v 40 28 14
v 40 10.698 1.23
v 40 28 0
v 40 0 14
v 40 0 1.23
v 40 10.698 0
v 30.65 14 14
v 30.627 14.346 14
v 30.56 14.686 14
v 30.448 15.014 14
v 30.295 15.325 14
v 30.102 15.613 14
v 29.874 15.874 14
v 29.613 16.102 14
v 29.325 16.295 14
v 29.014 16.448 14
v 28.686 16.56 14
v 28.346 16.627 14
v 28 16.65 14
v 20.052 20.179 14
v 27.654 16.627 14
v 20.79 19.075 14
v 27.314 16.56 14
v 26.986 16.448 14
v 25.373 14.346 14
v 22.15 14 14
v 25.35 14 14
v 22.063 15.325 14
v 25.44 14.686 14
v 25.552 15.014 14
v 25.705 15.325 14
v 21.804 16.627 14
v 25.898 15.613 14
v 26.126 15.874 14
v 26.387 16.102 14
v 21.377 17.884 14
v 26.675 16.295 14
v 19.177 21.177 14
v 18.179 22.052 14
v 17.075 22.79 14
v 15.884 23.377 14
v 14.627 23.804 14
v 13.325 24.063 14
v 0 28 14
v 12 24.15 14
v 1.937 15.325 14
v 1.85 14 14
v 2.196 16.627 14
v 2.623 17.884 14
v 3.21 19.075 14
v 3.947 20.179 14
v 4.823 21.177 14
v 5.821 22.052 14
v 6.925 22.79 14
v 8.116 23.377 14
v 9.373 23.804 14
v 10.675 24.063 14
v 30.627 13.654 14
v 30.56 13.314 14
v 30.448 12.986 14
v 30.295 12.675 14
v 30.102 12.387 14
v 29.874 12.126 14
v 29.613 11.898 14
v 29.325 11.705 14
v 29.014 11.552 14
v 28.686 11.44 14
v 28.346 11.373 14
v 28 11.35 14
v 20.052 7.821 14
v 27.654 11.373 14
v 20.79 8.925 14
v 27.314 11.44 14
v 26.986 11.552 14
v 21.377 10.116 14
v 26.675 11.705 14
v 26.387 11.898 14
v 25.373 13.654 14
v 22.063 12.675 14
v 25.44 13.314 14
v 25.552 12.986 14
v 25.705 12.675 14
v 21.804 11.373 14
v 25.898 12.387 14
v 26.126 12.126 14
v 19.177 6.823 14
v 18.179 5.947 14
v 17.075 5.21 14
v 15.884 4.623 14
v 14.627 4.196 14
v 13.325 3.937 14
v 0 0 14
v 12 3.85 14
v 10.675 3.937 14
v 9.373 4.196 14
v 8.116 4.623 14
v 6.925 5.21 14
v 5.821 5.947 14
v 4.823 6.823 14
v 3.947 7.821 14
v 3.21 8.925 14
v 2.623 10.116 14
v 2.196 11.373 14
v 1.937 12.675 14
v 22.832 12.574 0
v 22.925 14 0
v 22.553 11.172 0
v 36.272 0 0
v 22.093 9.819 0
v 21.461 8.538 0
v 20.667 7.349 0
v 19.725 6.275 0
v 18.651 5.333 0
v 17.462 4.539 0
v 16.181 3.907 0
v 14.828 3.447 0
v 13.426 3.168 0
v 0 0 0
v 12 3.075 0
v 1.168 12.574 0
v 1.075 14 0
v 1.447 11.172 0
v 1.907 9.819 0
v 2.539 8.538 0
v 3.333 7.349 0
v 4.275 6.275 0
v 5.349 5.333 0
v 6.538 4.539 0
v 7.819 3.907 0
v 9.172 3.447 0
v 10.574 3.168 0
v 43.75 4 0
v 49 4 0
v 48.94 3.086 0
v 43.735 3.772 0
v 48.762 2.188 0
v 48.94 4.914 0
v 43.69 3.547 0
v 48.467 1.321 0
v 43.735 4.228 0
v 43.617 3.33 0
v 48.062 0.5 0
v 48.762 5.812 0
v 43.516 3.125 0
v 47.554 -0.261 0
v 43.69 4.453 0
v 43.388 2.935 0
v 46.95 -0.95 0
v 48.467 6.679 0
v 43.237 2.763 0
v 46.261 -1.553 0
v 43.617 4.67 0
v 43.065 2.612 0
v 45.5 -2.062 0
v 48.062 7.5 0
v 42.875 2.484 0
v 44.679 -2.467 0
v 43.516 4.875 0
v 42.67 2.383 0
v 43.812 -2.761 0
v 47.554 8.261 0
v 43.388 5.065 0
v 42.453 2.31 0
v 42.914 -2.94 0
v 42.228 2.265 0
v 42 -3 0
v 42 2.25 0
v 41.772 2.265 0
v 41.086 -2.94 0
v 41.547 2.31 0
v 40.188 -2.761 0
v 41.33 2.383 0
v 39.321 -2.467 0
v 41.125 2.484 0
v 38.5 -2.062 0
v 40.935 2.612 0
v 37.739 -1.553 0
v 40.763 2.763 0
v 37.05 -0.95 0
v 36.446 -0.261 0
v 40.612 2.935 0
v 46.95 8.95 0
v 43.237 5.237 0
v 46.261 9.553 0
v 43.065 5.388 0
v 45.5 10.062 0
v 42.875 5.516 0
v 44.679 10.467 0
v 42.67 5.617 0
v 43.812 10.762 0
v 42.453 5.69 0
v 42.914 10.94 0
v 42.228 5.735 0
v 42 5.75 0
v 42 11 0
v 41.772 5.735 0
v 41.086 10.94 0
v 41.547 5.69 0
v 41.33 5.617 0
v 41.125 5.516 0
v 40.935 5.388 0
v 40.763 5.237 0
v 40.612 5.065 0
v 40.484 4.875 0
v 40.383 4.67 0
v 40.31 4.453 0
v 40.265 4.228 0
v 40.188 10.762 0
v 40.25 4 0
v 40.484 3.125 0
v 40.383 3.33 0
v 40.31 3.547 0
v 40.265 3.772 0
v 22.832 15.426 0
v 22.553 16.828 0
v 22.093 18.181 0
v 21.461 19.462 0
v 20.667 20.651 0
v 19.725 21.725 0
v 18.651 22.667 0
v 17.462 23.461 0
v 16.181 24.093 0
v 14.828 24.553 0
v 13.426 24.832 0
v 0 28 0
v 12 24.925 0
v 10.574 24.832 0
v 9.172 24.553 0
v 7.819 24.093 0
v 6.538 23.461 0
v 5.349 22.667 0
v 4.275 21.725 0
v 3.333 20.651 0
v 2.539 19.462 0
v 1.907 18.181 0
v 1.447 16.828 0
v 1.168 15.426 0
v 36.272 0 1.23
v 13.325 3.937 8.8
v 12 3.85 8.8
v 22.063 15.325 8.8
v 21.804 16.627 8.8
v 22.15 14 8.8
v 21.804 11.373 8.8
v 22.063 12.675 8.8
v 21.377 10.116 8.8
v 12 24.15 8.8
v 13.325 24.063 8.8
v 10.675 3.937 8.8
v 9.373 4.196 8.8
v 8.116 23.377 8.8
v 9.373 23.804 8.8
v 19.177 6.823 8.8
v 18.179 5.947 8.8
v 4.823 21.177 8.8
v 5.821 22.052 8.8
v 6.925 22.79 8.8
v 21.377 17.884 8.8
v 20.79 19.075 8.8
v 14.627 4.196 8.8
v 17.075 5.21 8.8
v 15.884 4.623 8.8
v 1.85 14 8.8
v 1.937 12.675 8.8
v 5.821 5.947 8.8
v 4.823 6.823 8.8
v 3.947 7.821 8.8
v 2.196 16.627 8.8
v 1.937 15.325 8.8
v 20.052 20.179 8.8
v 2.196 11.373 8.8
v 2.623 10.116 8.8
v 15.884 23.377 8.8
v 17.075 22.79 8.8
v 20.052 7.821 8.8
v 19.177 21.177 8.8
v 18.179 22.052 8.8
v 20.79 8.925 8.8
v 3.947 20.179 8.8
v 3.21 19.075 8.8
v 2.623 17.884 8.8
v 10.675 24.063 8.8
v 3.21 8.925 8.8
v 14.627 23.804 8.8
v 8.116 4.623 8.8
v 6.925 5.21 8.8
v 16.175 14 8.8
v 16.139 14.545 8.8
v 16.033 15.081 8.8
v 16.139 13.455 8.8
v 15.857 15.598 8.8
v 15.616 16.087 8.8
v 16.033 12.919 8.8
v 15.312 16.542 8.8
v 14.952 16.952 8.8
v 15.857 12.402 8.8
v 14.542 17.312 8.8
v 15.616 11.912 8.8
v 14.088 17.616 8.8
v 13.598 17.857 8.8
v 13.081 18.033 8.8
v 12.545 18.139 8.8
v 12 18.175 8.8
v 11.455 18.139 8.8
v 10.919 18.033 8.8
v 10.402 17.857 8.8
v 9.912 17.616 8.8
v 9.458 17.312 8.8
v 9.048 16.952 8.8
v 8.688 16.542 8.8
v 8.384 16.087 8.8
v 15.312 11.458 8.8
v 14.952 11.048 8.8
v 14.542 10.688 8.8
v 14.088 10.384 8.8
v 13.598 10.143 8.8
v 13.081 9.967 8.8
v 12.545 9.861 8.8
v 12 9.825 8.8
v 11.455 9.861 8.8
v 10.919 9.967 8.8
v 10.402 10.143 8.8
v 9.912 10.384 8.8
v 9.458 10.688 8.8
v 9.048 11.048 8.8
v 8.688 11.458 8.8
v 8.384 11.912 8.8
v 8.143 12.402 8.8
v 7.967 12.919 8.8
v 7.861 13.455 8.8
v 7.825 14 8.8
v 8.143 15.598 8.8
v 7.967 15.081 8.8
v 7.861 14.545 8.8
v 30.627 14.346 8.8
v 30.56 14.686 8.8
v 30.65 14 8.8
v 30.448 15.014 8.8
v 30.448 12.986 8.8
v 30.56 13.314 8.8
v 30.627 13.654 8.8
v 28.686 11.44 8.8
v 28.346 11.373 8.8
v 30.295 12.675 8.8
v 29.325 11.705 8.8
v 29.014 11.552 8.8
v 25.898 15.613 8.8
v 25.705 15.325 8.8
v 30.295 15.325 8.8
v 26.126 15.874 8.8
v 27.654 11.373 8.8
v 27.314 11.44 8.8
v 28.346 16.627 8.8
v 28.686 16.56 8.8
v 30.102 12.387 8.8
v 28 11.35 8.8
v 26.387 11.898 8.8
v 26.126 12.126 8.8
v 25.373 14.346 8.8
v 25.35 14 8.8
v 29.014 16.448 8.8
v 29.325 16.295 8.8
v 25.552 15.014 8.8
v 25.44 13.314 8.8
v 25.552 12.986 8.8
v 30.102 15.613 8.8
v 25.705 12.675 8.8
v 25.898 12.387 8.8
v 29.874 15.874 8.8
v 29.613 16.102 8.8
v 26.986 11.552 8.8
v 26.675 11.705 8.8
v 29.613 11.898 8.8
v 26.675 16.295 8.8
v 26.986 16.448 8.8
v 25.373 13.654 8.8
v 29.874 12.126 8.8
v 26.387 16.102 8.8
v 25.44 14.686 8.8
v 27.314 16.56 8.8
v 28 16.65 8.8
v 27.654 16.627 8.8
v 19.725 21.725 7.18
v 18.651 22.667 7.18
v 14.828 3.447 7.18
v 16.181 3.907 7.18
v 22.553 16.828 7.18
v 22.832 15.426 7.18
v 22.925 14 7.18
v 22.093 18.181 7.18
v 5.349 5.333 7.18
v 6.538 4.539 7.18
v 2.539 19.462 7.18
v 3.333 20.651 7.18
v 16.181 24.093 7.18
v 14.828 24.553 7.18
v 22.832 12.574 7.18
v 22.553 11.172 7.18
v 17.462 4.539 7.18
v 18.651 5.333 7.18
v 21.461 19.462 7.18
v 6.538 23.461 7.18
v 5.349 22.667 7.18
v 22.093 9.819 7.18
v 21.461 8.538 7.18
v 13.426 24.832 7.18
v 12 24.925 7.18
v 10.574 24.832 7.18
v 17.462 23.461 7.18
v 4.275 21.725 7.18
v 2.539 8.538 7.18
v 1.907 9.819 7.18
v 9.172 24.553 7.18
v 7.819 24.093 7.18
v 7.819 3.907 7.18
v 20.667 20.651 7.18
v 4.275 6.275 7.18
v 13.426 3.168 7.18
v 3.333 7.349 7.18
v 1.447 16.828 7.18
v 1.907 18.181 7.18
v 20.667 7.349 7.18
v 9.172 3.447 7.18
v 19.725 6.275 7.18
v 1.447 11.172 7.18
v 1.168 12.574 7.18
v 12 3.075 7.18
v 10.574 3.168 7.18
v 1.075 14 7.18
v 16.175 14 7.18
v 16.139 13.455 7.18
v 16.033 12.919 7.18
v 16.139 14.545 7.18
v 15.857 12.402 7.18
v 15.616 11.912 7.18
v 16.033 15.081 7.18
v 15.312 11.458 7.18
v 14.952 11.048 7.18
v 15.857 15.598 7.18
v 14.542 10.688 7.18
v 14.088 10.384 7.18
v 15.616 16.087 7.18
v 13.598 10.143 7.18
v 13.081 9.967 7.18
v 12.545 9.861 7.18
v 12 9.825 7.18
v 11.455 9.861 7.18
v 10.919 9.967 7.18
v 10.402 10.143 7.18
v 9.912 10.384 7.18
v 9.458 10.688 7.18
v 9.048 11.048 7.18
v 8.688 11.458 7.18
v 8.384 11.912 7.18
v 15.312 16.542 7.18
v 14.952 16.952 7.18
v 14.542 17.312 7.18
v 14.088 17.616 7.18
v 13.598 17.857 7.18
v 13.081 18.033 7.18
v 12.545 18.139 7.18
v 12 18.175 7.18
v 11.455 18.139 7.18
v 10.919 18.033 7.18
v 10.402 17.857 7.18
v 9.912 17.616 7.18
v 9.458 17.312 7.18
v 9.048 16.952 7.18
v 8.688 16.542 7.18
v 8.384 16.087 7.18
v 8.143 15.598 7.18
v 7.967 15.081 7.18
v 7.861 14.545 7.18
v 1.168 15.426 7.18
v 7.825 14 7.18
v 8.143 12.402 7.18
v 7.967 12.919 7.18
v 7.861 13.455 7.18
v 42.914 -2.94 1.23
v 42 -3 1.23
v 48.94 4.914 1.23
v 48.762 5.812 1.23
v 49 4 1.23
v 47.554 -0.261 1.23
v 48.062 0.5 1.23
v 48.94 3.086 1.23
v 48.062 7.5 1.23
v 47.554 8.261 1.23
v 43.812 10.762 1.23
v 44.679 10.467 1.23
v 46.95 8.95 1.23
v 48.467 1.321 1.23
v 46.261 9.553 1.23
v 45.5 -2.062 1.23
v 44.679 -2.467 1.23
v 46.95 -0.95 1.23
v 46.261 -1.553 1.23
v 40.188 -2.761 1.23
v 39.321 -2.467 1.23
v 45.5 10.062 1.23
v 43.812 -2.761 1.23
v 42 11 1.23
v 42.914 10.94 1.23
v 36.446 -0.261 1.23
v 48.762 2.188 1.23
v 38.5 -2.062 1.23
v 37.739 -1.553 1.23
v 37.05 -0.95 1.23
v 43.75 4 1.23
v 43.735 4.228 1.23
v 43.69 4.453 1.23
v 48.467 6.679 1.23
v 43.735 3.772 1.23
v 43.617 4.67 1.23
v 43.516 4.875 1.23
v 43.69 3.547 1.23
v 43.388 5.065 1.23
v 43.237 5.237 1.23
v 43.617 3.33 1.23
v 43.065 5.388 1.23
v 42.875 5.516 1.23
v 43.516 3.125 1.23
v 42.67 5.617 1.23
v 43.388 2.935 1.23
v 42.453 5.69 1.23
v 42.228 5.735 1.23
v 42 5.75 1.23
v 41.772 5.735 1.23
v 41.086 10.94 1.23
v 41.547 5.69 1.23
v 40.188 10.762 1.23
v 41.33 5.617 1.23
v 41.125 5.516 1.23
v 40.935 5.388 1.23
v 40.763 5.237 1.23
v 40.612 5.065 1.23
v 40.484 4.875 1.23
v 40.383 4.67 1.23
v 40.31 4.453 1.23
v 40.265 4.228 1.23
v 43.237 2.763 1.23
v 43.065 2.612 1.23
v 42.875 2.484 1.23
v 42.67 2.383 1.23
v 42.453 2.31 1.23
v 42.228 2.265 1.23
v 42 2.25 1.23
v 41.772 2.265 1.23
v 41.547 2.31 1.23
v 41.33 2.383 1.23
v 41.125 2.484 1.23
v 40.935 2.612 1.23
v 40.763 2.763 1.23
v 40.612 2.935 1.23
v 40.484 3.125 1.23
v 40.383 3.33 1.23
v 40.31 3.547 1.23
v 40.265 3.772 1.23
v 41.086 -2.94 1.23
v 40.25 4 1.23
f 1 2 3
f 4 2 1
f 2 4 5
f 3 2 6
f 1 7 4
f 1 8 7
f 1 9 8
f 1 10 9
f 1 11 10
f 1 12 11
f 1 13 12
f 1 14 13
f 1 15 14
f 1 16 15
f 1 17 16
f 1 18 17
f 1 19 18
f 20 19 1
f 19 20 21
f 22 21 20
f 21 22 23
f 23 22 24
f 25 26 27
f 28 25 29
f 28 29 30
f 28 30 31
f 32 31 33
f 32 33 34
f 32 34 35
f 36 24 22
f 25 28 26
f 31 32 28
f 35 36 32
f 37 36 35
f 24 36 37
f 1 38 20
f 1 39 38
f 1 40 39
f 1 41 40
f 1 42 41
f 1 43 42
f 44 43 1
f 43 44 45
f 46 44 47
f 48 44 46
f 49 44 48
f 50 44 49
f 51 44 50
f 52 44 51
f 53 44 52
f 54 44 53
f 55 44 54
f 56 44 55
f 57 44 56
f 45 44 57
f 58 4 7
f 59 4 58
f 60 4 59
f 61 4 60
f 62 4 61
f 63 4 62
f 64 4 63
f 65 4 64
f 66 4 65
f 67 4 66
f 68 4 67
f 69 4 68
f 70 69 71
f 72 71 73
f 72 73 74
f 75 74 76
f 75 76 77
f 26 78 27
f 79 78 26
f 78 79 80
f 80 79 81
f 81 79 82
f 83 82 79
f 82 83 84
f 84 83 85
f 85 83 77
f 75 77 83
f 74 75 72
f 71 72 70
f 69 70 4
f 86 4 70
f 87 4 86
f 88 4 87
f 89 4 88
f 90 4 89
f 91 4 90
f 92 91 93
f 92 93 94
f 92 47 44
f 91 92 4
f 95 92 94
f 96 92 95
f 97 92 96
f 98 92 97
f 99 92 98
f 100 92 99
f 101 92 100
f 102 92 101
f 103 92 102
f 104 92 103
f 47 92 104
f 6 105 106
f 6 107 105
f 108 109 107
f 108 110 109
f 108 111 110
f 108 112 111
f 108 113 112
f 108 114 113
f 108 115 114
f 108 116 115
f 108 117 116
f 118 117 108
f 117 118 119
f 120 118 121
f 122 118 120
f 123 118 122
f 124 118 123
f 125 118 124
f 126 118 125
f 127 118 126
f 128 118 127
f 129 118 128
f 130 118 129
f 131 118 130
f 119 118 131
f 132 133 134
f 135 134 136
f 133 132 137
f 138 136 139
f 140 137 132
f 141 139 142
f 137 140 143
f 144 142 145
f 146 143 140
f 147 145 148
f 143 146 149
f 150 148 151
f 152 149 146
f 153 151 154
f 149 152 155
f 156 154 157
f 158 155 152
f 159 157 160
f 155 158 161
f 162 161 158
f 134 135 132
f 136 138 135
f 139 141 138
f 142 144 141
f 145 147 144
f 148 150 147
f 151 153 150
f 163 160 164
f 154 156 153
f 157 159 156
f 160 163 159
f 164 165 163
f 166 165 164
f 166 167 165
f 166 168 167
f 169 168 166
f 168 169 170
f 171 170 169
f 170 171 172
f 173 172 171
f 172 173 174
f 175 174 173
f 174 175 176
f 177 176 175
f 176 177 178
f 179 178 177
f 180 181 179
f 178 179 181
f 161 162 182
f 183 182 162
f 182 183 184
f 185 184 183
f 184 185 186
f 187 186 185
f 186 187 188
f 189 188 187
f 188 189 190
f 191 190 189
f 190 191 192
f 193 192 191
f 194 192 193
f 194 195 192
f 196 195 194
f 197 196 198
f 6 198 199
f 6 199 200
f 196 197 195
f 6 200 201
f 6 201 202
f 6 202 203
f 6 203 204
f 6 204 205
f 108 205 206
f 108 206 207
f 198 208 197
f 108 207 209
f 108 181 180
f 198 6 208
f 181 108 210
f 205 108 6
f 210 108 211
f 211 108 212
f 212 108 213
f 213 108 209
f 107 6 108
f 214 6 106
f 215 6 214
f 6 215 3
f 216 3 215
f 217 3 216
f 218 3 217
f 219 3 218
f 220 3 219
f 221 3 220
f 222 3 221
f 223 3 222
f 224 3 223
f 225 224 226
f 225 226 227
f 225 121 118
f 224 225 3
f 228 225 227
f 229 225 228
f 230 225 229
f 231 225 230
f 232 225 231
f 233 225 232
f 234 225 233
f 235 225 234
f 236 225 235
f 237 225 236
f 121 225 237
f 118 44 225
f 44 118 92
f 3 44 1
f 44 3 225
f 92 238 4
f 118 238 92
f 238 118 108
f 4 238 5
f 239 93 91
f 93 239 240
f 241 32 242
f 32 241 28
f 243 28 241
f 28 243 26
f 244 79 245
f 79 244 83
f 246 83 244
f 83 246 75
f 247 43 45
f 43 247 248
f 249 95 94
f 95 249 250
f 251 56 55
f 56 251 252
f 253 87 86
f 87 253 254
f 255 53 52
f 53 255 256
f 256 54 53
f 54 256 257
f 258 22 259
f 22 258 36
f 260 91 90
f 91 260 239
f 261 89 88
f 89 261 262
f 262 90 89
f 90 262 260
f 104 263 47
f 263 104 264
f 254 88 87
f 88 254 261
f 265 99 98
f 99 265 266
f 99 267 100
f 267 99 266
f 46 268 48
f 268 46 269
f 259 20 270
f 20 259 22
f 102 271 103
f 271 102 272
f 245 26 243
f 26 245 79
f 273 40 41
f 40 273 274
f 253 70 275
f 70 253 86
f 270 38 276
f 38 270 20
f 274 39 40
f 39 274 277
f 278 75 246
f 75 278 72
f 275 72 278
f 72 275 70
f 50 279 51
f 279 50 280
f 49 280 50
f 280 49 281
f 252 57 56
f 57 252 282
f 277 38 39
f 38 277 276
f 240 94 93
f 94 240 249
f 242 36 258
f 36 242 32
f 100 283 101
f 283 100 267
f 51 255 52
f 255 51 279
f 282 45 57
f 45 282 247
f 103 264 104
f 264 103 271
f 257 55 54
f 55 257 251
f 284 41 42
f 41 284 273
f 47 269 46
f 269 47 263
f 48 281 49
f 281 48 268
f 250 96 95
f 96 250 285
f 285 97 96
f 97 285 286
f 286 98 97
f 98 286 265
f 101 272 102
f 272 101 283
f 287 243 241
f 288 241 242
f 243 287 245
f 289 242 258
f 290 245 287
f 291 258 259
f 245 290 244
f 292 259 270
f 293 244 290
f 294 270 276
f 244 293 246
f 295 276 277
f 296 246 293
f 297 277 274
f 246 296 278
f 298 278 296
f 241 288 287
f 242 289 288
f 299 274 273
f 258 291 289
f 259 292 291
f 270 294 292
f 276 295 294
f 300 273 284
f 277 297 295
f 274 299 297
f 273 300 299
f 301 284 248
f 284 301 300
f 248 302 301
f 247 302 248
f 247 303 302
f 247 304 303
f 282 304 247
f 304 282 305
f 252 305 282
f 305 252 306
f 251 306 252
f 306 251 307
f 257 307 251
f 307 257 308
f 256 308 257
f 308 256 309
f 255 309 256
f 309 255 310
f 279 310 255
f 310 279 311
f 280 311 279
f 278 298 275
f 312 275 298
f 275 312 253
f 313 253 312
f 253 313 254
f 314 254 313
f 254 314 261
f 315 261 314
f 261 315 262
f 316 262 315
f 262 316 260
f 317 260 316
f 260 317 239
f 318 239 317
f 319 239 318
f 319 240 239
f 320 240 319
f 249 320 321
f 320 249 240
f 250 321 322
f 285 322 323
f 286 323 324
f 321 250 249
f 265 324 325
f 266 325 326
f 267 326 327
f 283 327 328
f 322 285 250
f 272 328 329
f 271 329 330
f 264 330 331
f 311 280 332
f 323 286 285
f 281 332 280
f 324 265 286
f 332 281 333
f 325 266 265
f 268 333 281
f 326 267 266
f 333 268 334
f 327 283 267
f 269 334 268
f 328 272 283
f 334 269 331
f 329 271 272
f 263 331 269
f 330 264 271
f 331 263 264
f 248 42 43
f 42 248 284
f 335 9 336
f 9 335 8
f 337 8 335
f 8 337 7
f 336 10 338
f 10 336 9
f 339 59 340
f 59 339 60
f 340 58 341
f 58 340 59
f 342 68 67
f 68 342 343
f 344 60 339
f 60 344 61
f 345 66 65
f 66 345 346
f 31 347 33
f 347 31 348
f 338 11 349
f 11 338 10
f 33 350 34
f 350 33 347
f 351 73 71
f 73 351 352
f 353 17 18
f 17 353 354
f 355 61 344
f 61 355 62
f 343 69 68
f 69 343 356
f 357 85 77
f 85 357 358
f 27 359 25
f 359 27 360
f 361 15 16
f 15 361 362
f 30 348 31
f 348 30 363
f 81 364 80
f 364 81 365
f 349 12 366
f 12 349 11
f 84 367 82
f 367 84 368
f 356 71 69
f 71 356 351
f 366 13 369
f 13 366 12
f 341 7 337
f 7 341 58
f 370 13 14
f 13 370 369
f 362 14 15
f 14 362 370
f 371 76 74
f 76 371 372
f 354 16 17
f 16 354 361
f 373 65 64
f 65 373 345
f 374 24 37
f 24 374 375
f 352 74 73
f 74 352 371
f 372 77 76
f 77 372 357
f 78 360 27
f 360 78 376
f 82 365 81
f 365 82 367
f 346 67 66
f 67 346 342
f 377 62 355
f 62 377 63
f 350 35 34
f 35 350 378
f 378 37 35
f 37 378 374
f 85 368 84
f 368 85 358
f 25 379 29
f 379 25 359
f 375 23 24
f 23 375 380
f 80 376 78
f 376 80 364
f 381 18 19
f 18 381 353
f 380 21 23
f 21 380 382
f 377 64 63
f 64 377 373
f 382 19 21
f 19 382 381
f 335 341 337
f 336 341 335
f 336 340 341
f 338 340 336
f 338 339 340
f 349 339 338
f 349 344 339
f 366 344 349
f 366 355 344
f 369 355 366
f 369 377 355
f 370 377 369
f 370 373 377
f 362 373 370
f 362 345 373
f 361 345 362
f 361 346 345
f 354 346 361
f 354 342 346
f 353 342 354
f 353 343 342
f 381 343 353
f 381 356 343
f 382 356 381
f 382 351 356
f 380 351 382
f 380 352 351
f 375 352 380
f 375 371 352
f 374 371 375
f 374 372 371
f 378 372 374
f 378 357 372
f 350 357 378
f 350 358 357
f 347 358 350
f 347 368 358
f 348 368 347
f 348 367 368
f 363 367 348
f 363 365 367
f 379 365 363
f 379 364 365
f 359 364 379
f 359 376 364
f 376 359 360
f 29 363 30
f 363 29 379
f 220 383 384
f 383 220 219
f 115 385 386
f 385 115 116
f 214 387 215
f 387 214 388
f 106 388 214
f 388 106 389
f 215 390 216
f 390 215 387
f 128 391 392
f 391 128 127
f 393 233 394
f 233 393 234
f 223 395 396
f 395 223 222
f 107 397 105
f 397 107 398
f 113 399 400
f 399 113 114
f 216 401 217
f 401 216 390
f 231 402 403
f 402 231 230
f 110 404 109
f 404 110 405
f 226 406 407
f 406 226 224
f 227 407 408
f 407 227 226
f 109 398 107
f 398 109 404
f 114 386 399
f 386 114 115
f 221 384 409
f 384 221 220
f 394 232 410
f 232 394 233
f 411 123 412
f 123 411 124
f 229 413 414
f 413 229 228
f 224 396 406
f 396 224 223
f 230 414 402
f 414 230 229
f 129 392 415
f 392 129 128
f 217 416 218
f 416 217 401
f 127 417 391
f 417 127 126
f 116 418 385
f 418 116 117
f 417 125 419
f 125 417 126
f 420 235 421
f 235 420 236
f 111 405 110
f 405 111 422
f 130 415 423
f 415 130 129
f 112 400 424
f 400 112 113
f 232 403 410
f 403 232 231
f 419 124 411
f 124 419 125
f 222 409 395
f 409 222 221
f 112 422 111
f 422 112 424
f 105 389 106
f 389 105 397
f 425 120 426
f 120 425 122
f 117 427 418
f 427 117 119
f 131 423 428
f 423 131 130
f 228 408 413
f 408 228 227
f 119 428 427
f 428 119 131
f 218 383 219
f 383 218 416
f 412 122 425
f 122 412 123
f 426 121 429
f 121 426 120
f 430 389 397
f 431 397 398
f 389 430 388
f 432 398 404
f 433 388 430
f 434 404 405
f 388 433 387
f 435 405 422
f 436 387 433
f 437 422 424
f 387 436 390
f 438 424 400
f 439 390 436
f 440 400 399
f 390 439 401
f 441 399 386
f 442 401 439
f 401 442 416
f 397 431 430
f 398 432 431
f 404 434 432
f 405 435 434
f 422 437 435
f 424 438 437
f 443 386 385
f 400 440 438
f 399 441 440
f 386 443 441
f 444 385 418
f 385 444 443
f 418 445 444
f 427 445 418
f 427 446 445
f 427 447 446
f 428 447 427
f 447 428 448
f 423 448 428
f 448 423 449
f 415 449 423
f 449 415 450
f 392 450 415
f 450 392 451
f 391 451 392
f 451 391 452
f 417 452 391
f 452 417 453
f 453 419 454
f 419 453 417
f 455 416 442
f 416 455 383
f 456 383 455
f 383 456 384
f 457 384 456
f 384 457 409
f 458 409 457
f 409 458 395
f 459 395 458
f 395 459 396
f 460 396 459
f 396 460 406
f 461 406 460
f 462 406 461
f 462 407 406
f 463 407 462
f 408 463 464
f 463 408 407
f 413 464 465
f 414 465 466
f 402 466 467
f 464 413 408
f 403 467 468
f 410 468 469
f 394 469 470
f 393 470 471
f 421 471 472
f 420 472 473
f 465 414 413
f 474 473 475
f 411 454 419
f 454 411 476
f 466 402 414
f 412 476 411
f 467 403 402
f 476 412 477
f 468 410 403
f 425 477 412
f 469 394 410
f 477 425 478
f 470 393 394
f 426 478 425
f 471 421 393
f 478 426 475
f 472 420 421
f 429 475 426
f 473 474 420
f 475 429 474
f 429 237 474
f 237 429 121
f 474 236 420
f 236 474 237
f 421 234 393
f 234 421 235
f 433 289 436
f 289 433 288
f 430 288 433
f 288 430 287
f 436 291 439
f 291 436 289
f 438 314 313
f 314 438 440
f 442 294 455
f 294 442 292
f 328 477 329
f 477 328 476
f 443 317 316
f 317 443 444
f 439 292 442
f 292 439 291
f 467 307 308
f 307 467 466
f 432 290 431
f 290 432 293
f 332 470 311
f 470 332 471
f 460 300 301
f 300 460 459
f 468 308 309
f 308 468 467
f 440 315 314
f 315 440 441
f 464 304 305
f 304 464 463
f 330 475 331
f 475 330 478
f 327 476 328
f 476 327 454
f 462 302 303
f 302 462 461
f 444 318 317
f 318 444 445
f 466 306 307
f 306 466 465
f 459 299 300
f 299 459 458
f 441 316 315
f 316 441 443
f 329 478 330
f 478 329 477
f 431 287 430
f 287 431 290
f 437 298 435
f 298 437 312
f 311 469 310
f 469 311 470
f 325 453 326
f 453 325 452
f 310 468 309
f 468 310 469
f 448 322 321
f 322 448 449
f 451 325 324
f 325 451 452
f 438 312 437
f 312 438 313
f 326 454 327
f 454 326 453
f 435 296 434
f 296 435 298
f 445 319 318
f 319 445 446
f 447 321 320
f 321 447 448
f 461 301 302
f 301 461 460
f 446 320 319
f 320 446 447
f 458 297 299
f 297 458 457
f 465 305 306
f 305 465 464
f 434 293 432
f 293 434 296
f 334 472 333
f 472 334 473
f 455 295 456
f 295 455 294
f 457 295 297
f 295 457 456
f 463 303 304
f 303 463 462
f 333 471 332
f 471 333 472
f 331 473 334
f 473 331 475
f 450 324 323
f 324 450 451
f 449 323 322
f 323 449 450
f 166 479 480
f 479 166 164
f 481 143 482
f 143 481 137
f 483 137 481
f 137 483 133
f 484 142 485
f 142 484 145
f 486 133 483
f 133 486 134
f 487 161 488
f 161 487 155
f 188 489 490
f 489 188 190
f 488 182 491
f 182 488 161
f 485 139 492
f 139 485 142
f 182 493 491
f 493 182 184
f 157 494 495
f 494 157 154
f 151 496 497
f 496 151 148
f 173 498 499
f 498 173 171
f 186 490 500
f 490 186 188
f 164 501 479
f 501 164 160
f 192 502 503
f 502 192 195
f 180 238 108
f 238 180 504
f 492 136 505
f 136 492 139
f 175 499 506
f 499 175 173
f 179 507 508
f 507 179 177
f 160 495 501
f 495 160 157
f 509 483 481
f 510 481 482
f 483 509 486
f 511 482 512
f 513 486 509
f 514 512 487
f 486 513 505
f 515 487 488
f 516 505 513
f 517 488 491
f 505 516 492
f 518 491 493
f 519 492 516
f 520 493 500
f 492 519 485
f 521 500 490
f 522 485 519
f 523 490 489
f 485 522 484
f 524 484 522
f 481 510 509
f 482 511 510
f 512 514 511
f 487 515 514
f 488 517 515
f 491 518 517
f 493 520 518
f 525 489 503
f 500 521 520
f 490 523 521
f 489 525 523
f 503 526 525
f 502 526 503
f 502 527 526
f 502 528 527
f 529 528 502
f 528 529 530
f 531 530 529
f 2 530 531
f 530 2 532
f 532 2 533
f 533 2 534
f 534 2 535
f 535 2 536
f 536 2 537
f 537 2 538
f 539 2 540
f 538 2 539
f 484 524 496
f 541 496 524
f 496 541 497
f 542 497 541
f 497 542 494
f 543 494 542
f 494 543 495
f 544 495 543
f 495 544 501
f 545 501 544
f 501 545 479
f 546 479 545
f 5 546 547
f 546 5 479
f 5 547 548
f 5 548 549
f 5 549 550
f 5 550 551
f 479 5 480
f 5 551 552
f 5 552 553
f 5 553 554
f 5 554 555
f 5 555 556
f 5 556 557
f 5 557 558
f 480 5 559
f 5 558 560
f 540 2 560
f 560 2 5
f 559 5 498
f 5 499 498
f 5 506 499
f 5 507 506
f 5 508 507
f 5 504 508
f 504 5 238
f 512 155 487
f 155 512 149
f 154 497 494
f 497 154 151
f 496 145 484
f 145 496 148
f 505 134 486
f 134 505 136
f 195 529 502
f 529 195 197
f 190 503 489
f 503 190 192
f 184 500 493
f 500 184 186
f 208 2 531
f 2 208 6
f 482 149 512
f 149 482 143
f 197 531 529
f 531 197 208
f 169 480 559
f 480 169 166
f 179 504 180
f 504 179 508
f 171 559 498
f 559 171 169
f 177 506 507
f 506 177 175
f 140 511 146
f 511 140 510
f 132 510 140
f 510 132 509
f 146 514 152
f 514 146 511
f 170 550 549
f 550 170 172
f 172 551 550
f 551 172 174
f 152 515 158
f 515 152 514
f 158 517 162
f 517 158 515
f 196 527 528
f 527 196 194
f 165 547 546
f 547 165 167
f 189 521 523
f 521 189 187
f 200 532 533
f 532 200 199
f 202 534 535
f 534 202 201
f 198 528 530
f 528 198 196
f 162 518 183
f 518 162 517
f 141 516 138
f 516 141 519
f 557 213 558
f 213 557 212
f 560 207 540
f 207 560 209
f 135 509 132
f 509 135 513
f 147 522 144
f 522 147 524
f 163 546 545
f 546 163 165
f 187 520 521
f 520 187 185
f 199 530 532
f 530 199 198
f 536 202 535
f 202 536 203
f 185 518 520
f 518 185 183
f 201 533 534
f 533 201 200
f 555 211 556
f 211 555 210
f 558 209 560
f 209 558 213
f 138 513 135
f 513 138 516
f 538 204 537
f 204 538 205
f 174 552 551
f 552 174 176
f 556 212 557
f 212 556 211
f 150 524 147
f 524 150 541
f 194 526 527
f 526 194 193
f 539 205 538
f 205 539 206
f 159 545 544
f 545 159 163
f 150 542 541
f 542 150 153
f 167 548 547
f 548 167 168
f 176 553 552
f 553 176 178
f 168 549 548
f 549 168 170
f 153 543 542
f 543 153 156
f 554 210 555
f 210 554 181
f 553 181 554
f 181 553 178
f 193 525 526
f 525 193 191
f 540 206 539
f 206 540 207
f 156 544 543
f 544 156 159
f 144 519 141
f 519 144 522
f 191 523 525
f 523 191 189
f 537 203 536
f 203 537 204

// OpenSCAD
// file: parameters.scad
// =============================================================================
// Gen-AC Stacked dual-gap / mid-stator Halbach intensifier — WOUND-AWARE
// TWO wound pancake stators | ONE mid dual-face Halbach rotor | outer endbells
// Beats Gen-Z: thinner m2m, larger copper window, 125 t / coil
// =============================================================================

wire_awg            = 26;
wire_od             = 0.45;
turns               = 125;      // 9 coils/stator ×2 = 18 ×125 ×~0.115 ≈ 259 m
fill                = 0.70;
layers_per_face     = 2;
wind_build_axial    = layers_per_face * wire_od * fill;   // 0.63
wind_build_radial   = 2.8 * wire_od * fill;               // 0.882

coil_id_r           = 21.0;     // larger than Gen-Z 22–58
coil_od_r           = 60.0;
span_deg            = 34.0;     // 9 stations × 40°
former_web          = 1.7;
flange_t            = 0.65;
wall                = 1.2;
slot_w              = 2.4;
mount_hole          = 3.5;
tab_len             = 7.0;

former_bare_h       = former_web + 2 * flange_t;            // 3.0
coil_envelope_h     = former_bare_h + 2 * wind_build_axial; // 4.26

run_clear           = 0.60;
gap_spacer_h        = run_clear + wind_build_axial;         // 1.23
m2m                 = coil_envelope_h + 2 * run_clear;      // 5.46 per gap (beats Gen-Z 5.86)

coil_stations       = 9;        // per stator; ×2 = 18 total
bay_r_in            = coil_id_r - 2.0 - wind_build_radial;
bay_r_out           = coil_od_r + 2.0 + wind_build_radial;
bay_span            = span_deg + 4.0;
bay_offset          = 2.0;
bay_depth           = former_bare_h + wind_build_axial;
stator_back_web     = 2.0;
stator_thick        = bay_depth + stator_back_web;
stator_od           = 156.0;
shaft_clear_stator  = 40.0;
coil_mount_r        = 30.0;

large_pocket_d      = 20.3;
small_pocket_d      = 5.3;
pocket_h            = 5.2;
large_n             = 8;
R_large             = 52.0;
R_small_inner       = 40.0;
R_small_mid         = 52.0;
R_small_outer       = 64.0;
carrier_od          = 152.0;
mid_carrier_thick   = 12.0;
hub_h               = 10.0;
hub_od              = 30.0;
rotor_b_offset_deg  = 22.5;

shaft_bore          = 8.35;
bearing_d           = 21.85;
bearing_h           = 7.2;
m3_clear            = 3.5;
bolt_r_inner        = 36.0;
bolt_n_inner        = 6;
flange_bolt_r       = 72.0;
flange_bolt_n       = 6;
brace_r             = 68.0;
brace_d             = 4.3;
brace_n             = 4;

spacer_pad_od       = 14.0;
spacer_pad_id       = m3_clear;
endbell_od          = 156.0;
endbell_thick       = 8.0;
endbell_shaft_clear = 10.0;

$fn = 64;
// main file
// Gen-AC fit coupon — magnet pockets + 608 + spacer height
include <parameters.scad>;
$fn = 48;
block_w = 40; block_d = 28; block_h = 14;
difference() {
    cube([block_w, block_d, block_h]);
    translate([12, block_d/2, block_h - pocket_h])
        cylinder(d=large_pocket_d, h=pocket_h + 0.2);
    translate([28, block_d/2, block_h - pocket_h])
        cylinder(d=small_pocket_d, h=pocket_h + 0.2);
    translate([12, block_d/2, -0.02])
        cylinder(d=bearing_d, h=bearing_h);
    translate([12, block_d/2, -0.1])
        cylinder(d=shaft_bore, h=block_h + 1);
}
translate([block_w + 2, 4, 0])
    difference() {
        cylinder(d=spacer_pad_od, h=gap_spacer_h);
        translate([0, 0, -0.1]) cylinder(d=spacer_pad_id, h=gap_spacer_h + 0.2);
    }
